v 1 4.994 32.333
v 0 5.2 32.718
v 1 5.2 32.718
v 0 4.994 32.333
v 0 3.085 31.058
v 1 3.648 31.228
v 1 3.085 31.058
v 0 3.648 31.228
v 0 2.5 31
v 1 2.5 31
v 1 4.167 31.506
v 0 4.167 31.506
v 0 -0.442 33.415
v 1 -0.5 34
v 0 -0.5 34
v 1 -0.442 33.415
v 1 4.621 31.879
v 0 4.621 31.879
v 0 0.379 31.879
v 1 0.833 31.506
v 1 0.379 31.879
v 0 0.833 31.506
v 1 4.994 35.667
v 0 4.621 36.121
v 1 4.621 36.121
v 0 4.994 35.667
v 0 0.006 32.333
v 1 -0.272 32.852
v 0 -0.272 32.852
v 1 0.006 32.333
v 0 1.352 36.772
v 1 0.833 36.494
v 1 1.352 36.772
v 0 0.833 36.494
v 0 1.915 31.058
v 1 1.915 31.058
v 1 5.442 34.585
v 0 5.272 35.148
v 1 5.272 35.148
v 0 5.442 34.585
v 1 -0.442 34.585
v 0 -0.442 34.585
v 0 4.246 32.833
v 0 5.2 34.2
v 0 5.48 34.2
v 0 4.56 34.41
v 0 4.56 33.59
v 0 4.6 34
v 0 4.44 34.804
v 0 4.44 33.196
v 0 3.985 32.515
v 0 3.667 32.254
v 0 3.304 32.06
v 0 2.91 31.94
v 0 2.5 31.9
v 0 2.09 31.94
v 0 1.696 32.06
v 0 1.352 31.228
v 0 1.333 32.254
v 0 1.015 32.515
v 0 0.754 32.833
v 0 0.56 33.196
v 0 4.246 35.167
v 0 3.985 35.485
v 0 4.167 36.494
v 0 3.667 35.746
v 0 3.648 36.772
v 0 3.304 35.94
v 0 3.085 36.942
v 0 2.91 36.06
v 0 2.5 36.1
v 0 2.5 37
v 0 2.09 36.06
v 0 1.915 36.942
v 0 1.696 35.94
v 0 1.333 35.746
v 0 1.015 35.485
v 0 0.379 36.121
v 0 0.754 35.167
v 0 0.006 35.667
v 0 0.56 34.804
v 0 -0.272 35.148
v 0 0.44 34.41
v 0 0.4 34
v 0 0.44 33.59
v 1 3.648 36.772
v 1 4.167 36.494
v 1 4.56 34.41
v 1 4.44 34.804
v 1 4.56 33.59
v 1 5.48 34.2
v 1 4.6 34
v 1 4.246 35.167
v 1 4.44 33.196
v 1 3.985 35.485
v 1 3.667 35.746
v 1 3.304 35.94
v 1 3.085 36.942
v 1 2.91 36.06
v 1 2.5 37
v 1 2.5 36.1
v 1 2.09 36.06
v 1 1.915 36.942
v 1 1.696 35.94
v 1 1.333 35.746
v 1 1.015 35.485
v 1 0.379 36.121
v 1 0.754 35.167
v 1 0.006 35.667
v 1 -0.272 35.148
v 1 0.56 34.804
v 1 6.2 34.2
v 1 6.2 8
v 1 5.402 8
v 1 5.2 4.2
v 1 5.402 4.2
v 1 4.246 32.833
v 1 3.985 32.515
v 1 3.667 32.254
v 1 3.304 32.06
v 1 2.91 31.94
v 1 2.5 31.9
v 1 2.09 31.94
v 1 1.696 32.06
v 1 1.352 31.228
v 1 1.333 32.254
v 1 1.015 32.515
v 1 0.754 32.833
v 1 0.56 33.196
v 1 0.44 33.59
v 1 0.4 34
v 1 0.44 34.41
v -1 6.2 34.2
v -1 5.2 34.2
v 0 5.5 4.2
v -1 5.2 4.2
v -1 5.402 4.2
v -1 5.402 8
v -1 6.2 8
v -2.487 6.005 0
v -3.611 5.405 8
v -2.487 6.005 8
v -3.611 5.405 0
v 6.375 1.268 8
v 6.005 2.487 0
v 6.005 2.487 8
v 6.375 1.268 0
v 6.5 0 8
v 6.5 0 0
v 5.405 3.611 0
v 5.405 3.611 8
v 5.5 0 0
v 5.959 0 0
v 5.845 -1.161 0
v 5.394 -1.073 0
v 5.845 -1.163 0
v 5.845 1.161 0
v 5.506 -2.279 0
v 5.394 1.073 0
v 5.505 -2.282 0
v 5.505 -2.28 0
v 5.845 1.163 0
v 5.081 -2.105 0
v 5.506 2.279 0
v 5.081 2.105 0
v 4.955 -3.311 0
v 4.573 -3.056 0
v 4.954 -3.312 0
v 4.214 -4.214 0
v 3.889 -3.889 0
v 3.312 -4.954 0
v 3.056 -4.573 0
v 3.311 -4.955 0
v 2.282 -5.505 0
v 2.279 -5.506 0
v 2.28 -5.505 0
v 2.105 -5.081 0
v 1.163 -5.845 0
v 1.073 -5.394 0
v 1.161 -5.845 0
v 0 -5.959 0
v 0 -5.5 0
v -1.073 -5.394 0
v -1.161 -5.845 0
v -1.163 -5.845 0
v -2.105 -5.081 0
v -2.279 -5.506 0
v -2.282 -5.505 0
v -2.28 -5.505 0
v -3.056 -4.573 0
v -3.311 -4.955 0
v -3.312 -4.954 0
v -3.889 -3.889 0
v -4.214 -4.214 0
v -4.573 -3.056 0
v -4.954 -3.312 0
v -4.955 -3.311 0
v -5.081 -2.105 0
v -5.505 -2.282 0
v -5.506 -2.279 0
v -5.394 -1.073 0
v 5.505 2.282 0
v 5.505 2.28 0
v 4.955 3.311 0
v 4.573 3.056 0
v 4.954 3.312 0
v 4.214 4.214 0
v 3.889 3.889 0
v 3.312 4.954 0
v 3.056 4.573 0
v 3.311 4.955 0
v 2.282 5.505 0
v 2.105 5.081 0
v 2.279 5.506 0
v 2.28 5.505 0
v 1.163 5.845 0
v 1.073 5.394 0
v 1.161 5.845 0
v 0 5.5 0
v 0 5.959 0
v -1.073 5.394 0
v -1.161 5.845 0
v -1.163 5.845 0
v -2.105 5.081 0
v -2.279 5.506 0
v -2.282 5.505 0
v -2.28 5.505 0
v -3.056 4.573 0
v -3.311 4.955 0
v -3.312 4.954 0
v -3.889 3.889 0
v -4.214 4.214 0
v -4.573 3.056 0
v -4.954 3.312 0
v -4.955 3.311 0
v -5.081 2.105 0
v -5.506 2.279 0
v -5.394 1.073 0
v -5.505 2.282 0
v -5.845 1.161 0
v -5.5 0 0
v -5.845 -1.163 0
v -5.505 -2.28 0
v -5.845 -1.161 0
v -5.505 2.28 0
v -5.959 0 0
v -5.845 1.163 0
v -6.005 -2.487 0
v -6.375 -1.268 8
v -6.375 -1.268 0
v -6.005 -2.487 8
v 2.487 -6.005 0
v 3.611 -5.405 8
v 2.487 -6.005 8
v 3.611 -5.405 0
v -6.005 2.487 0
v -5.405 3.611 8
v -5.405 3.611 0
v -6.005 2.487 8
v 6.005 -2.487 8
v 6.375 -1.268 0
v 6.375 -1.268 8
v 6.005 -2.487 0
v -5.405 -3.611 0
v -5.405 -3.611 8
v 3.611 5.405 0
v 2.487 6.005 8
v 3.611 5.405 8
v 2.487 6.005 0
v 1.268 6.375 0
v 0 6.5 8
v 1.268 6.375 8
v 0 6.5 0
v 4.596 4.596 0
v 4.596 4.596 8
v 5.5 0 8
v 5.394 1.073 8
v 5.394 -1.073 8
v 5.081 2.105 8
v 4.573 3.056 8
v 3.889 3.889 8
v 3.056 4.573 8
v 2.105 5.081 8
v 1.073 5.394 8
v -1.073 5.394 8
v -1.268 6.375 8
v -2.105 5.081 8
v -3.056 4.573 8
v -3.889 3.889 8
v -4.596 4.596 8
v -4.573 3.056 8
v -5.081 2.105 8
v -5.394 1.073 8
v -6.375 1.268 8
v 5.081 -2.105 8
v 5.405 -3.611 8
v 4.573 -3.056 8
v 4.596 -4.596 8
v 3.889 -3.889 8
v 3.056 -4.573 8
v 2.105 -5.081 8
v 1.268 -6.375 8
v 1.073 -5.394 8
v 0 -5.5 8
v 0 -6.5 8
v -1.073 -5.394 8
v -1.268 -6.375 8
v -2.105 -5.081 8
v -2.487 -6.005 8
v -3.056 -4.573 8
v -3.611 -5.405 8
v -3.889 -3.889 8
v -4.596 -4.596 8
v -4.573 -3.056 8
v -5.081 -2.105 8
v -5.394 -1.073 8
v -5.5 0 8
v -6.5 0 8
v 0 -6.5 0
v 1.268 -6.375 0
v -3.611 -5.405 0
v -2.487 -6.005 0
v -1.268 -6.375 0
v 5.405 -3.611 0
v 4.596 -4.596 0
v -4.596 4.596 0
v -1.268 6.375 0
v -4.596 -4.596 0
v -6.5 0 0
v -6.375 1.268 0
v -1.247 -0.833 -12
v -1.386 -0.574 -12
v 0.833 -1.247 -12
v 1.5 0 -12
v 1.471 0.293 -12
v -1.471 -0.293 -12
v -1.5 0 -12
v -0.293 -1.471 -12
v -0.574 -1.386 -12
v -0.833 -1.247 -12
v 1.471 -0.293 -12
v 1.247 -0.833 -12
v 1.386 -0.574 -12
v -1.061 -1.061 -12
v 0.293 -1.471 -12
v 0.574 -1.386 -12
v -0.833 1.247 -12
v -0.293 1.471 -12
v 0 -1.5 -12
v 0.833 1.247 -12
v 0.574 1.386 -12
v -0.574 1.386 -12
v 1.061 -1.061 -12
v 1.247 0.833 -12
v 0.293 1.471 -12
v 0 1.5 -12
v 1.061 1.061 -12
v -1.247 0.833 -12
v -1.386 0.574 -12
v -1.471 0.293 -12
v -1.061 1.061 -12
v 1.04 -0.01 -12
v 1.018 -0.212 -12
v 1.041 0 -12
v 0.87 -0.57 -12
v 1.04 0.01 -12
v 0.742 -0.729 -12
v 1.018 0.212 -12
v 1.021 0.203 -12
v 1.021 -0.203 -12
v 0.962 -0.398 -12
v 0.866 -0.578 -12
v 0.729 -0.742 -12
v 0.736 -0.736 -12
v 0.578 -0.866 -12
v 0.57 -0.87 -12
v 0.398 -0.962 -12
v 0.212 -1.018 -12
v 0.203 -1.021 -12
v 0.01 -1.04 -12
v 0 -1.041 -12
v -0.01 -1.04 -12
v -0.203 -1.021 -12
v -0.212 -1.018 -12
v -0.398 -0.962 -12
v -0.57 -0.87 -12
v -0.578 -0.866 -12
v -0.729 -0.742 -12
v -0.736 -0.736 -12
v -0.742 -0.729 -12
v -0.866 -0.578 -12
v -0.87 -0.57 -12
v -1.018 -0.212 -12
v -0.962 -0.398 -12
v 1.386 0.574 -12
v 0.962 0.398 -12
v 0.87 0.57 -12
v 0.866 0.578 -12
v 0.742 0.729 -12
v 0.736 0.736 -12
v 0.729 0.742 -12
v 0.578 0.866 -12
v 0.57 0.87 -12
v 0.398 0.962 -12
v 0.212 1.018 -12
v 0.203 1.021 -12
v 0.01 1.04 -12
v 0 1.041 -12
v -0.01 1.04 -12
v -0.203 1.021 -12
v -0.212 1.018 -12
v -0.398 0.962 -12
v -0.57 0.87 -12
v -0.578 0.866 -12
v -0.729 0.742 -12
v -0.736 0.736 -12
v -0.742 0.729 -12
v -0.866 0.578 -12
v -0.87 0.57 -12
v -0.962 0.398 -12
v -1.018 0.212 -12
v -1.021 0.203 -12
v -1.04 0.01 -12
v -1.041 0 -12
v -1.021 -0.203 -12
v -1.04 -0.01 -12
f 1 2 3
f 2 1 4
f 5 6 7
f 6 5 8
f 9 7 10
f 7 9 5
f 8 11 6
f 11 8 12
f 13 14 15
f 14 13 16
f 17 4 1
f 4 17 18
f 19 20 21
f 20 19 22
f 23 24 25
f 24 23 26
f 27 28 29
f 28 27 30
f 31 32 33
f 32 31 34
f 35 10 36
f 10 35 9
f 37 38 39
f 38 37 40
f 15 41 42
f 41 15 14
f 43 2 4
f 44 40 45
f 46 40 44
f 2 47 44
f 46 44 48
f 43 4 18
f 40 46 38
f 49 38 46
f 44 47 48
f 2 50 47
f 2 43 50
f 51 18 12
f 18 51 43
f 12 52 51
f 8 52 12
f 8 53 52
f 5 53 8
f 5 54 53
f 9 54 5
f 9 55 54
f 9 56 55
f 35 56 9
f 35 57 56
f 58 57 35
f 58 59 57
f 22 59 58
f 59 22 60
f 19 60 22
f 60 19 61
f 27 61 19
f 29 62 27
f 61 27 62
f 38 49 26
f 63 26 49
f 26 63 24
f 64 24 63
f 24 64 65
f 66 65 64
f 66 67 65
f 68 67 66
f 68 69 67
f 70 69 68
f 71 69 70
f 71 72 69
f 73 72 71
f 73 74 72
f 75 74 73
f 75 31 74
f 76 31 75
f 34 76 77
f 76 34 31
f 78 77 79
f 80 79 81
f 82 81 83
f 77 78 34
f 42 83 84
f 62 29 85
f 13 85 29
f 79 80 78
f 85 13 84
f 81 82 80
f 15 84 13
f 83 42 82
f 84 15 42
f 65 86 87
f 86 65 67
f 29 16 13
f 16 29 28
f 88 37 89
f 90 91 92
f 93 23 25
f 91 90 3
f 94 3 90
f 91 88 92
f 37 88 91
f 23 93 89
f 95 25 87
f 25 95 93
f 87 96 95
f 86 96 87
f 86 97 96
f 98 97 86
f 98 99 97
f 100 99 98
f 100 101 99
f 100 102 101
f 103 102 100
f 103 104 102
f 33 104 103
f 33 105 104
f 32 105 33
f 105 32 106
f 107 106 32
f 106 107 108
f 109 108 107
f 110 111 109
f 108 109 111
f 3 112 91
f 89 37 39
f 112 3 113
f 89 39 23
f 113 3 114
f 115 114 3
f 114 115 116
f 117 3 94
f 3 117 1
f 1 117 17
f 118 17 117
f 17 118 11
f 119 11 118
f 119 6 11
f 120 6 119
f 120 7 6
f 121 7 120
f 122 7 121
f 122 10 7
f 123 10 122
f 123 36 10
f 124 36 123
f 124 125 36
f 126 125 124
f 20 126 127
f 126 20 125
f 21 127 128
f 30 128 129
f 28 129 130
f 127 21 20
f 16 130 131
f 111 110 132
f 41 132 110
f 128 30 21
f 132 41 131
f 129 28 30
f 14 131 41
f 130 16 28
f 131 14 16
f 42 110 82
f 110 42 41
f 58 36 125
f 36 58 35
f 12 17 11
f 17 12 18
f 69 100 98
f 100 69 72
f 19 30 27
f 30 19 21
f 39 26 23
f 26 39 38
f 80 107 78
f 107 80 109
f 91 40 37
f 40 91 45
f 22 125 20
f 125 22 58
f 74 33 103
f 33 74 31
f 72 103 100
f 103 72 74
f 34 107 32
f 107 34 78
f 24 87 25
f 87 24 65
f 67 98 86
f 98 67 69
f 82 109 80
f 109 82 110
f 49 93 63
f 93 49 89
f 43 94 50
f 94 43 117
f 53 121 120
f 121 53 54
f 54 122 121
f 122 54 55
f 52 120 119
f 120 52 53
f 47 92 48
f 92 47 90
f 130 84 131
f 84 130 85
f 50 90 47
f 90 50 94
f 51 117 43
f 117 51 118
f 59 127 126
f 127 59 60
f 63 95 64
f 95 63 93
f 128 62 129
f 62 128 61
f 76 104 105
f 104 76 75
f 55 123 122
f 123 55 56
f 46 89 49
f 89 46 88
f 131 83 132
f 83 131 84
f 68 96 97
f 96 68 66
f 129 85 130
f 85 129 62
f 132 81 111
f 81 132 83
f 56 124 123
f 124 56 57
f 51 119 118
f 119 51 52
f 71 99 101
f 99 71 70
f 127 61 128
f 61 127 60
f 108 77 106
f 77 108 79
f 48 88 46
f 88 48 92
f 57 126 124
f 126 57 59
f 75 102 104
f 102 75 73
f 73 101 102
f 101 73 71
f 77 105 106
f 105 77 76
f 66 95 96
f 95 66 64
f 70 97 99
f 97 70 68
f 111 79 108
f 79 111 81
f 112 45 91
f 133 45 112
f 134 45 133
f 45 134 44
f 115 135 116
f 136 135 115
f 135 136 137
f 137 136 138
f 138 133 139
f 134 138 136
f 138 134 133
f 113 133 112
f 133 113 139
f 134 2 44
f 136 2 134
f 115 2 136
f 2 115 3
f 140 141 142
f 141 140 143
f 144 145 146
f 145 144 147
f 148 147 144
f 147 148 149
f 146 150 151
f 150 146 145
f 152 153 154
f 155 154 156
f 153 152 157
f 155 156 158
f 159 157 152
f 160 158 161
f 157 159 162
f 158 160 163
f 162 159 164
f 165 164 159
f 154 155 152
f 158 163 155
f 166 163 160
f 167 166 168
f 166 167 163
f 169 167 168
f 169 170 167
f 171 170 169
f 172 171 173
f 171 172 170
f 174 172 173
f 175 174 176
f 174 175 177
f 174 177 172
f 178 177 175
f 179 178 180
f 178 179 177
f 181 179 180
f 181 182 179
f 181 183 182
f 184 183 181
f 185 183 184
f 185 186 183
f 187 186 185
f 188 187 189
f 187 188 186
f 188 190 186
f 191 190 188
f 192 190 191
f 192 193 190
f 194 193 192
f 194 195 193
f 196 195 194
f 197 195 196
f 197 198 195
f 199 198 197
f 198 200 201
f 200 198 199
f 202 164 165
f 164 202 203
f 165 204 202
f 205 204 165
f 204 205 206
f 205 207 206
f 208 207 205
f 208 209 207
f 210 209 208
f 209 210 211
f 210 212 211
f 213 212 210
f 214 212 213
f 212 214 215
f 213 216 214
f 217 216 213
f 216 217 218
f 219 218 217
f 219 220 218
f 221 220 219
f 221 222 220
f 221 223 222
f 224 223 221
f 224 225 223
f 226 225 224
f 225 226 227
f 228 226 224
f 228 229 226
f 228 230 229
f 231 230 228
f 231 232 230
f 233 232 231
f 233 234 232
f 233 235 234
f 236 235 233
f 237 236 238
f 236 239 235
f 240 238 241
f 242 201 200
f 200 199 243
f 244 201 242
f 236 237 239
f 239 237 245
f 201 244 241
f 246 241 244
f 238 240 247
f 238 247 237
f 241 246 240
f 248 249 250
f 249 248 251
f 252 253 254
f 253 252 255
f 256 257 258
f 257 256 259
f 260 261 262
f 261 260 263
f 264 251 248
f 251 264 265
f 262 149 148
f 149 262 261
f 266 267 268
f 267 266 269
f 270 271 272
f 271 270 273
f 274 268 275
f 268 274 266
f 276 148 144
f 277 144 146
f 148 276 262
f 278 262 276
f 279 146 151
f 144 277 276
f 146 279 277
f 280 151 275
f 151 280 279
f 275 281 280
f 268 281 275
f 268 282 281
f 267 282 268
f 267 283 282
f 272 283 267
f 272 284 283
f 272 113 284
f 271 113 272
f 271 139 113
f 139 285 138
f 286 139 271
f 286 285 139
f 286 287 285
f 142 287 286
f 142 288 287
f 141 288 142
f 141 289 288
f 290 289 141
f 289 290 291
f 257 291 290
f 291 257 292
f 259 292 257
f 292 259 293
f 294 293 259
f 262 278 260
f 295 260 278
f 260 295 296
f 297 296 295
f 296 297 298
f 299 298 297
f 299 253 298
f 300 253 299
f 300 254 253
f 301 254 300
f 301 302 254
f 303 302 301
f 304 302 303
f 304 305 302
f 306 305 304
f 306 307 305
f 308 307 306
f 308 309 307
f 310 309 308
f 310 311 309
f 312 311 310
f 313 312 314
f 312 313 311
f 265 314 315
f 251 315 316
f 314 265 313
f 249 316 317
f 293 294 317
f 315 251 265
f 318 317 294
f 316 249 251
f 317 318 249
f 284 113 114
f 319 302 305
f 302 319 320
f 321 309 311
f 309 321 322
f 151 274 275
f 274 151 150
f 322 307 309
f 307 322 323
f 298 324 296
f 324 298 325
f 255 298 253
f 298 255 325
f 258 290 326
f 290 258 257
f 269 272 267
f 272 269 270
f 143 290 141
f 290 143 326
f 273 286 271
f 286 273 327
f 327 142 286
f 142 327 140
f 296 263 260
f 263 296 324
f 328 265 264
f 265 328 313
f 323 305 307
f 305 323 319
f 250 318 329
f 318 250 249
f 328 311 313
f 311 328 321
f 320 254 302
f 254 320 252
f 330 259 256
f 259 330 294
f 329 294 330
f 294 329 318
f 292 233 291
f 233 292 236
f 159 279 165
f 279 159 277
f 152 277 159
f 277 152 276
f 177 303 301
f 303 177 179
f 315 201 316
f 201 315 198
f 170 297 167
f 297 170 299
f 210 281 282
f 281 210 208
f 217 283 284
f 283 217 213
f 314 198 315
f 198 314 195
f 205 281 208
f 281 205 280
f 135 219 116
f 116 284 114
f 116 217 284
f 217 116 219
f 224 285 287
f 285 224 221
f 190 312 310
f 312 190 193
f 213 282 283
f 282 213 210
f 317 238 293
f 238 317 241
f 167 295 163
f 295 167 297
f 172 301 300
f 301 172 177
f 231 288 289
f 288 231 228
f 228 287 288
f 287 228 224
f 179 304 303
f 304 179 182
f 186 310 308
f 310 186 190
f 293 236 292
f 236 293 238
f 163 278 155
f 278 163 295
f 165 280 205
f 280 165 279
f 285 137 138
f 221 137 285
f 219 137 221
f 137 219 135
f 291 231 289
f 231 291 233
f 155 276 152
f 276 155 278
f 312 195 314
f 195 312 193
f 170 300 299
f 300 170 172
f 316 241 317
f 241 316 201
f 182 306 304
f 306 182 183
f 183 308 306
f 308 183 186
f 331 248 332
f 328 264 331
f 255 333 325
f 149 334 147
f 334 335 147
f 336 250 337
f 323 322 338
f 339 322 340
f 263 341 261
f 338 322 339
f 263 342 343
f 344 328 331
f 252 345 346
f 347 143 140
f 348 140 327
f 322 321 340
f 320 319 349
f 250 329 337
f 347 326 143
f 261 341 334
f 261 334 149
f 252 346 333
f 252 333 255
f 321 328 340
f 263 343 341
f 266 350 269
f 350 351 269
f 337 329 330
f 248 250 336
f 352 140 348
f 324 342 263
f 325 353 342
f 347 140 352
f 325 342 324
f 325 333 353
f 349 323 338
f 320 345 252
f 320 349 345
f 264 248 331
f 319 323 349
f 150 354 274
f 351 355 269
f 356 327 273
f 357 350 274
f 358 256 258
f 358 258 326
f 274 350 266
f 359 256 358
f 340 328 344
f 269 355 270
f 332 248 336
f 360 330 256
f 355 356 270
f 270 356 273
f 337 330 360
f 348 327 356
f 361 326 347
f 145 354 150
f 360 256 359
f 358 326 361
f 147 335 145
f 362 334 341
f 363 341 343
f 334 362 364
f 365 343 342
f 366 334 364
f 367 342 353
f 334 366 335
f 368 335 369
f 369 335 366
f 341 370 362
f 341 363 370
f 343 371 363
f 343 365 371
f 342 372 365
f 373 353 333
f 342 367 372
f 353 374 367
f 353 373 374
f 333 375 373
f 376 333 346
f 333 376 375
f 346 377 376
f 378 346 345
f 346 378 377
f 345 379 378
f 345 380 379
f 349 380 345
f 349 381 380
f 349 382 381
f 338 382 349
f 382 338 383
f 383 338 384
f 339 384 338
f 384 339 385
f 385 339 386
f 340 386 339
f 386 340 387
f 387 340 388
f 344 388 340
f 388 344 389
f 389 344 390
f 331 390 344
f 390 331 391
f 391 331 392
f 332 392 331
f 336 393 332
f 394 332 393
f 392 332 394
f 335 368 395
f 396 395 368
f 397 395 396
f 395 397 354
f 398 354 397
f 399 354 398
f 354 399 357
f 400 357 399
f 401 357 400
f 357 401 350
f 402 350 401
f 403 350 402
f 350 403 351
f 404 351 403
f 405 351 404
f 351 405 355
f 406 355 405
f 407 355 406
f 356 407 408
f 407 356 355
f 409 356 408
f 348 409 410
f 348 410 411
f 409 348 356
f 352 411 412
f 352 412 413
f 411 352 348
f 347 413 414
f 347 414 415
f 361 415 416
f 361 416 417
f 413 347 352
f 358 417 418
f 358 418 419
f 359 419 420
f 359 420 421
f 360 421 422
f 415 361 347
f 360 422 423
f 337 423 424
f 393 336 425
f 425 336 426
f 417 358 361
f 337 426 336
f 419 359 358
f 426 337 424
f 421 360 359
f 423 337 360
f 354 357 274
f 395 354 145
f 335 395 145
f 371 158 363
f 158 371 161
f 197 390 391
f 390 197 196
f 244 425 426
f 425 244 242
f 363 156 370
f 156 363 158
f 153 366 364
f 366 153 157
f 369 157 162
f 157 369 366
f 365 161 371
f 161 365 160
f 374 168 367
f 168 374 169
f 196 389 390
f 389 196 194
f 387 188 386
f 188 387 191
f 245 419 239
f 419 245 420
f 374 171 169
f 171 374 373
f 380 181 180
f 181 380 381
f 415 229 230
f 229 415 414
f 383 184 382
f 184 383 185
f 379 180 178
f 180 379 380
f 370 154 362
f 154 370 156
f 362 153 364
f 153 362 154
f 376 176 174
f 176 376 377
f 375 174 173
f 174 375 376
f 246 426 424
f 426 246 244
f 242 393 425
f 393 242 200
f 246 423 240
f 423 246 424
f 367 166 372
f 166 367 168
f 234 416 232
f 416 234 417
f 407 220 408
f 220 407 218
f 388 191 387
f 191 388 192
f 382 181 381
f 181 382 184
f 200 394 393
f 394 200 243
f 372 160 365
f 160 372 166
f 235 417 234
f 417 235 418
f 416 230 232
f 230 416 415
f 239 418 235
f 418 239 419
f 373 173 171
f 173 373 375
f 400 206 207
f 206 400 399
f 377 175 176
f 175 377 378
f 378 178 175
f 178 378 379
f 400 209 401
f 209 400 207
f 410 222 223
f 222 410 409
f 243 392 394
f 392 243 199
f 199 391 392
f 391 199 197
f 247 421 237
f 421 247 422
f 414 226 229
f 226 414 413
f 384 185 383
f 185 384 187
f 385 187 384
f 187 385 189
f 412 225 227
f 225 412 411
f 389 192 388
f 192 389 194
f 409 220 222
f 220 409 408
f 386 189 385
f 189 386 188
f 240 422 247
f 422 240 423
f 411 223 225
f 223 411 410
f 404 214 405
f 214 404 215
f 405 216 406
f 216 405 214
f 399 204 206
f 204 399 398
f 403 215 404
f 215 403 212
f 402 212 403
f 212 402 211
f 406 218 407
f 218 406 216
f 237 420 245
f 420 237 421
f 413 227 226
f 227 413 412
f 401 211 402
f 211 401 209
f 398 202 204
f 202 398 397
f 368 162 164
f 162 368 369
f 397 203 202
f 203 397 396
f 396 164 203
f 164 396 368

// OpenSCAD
// Housing for BME/BMP280 temperature/humidity/pressure sensor
// Developed for Australian Plant Phenomics Facility, ANU node


/* [Settings:] */ 

// adjustment for rounding error
fudge=0.2; // [0.1:0.05:0.5]

// curve resolution
$fn=32; // [32, 64, 128, 256]

// Diameter of the largest bit
//pipe_diameter_inner=18;

// Number of arms connecting cable and pipe holder
//n_arms = 7; // [1:1:30]

// Adjust position of connector arms
//arm_adjustment = 10; //[0:1:180]

// Select part
//part = "all"; // [all, base ring, sensor mount]

/* [Hidden] */ 
// Derived variables and constants
fudge_adj=fudge/2;

module sensor(){
cube([13+fudge, 10.4+fudge, 1.6+fudge]);
}

module ring(od, id, height){
    difference(){
        cylinder(height,od/2,od/2);
        translate([0,0,-fudge_adj]) cylinder(height+fudge,id/2,id/2);
    }
}

module sensor_ring(){
    inner=4.0;
    outer=2;
    ring(inner+outer, inner+fudge, 1);
}

// depreciated
module sensor_rail(){
difference(){
    translate([fudge,-1+fudge_adj,-1+fudge_adj]) cube([11,12.4,3.6]);
    union(){
        translate([-2,1.5,-2]) cube([15,7.4,5.6]);
        sensor();
    }
}
}

module cable_holder(){
    //ring(13,12,4);
    thickness=1;
    id1=12;
    id2=2;
    od1=id2+thickness;
    od2=id1+thickness;
    height=12;
    difference(){
        cylinder(height,od1/2,od2/2);
        translate([0,0,-fudge_adj]) cylinder(height+fudge,id2/2,id1/2);
    }
}

module pipe_holder(){
    ring(13,11,8);
}

module circle_line(){
    translate([3.5,0,1]) difference(){
        ring(10,9,4);
        rotate([0,0,20]) translate([-5,-3.5,-fudge]) cube([15,15,5]);
    }
}

module circle_lines(num){
    function angle(i,num)=i*(360/num)+arm_adjustment; // evenly spread arms in a circle
    for(i=[1:num]){
        // add an arm each rotation
        rotate([20,0,angle(i,num)])
        circle_line();
    }
}

module sensor_mount_ring(){
    color("DeepSkyBlue") union(){
        translate([0,2.5,34]) rotate([0,90,0]) sensor_ring();
        translate([-1,5.2,4.2]) cube([2,1,30]);
    }
}

module base_bracer(){
    color("orange") union(){
        //translate([0,0,0]) circle_lines(n_arms);
        pipe_holder();
        translate([0,0,-12]) cable_holder();
    }
}

sensor_mount_ring();
base_bracer();

//if((part=="all")||(part=="base ring")){
//    difference(){
//        base_bracer();
//        union(){
//            translate([fudge,-fudge,0]) sensor_mount_ring();
//            translate([-fudge,-fudge,0]) sensor_mount_ring();
//        }
//    }
//}
//
//if((part=="all")||(part=="sensor mount")){
//    sensor_mount_ring();
//}
